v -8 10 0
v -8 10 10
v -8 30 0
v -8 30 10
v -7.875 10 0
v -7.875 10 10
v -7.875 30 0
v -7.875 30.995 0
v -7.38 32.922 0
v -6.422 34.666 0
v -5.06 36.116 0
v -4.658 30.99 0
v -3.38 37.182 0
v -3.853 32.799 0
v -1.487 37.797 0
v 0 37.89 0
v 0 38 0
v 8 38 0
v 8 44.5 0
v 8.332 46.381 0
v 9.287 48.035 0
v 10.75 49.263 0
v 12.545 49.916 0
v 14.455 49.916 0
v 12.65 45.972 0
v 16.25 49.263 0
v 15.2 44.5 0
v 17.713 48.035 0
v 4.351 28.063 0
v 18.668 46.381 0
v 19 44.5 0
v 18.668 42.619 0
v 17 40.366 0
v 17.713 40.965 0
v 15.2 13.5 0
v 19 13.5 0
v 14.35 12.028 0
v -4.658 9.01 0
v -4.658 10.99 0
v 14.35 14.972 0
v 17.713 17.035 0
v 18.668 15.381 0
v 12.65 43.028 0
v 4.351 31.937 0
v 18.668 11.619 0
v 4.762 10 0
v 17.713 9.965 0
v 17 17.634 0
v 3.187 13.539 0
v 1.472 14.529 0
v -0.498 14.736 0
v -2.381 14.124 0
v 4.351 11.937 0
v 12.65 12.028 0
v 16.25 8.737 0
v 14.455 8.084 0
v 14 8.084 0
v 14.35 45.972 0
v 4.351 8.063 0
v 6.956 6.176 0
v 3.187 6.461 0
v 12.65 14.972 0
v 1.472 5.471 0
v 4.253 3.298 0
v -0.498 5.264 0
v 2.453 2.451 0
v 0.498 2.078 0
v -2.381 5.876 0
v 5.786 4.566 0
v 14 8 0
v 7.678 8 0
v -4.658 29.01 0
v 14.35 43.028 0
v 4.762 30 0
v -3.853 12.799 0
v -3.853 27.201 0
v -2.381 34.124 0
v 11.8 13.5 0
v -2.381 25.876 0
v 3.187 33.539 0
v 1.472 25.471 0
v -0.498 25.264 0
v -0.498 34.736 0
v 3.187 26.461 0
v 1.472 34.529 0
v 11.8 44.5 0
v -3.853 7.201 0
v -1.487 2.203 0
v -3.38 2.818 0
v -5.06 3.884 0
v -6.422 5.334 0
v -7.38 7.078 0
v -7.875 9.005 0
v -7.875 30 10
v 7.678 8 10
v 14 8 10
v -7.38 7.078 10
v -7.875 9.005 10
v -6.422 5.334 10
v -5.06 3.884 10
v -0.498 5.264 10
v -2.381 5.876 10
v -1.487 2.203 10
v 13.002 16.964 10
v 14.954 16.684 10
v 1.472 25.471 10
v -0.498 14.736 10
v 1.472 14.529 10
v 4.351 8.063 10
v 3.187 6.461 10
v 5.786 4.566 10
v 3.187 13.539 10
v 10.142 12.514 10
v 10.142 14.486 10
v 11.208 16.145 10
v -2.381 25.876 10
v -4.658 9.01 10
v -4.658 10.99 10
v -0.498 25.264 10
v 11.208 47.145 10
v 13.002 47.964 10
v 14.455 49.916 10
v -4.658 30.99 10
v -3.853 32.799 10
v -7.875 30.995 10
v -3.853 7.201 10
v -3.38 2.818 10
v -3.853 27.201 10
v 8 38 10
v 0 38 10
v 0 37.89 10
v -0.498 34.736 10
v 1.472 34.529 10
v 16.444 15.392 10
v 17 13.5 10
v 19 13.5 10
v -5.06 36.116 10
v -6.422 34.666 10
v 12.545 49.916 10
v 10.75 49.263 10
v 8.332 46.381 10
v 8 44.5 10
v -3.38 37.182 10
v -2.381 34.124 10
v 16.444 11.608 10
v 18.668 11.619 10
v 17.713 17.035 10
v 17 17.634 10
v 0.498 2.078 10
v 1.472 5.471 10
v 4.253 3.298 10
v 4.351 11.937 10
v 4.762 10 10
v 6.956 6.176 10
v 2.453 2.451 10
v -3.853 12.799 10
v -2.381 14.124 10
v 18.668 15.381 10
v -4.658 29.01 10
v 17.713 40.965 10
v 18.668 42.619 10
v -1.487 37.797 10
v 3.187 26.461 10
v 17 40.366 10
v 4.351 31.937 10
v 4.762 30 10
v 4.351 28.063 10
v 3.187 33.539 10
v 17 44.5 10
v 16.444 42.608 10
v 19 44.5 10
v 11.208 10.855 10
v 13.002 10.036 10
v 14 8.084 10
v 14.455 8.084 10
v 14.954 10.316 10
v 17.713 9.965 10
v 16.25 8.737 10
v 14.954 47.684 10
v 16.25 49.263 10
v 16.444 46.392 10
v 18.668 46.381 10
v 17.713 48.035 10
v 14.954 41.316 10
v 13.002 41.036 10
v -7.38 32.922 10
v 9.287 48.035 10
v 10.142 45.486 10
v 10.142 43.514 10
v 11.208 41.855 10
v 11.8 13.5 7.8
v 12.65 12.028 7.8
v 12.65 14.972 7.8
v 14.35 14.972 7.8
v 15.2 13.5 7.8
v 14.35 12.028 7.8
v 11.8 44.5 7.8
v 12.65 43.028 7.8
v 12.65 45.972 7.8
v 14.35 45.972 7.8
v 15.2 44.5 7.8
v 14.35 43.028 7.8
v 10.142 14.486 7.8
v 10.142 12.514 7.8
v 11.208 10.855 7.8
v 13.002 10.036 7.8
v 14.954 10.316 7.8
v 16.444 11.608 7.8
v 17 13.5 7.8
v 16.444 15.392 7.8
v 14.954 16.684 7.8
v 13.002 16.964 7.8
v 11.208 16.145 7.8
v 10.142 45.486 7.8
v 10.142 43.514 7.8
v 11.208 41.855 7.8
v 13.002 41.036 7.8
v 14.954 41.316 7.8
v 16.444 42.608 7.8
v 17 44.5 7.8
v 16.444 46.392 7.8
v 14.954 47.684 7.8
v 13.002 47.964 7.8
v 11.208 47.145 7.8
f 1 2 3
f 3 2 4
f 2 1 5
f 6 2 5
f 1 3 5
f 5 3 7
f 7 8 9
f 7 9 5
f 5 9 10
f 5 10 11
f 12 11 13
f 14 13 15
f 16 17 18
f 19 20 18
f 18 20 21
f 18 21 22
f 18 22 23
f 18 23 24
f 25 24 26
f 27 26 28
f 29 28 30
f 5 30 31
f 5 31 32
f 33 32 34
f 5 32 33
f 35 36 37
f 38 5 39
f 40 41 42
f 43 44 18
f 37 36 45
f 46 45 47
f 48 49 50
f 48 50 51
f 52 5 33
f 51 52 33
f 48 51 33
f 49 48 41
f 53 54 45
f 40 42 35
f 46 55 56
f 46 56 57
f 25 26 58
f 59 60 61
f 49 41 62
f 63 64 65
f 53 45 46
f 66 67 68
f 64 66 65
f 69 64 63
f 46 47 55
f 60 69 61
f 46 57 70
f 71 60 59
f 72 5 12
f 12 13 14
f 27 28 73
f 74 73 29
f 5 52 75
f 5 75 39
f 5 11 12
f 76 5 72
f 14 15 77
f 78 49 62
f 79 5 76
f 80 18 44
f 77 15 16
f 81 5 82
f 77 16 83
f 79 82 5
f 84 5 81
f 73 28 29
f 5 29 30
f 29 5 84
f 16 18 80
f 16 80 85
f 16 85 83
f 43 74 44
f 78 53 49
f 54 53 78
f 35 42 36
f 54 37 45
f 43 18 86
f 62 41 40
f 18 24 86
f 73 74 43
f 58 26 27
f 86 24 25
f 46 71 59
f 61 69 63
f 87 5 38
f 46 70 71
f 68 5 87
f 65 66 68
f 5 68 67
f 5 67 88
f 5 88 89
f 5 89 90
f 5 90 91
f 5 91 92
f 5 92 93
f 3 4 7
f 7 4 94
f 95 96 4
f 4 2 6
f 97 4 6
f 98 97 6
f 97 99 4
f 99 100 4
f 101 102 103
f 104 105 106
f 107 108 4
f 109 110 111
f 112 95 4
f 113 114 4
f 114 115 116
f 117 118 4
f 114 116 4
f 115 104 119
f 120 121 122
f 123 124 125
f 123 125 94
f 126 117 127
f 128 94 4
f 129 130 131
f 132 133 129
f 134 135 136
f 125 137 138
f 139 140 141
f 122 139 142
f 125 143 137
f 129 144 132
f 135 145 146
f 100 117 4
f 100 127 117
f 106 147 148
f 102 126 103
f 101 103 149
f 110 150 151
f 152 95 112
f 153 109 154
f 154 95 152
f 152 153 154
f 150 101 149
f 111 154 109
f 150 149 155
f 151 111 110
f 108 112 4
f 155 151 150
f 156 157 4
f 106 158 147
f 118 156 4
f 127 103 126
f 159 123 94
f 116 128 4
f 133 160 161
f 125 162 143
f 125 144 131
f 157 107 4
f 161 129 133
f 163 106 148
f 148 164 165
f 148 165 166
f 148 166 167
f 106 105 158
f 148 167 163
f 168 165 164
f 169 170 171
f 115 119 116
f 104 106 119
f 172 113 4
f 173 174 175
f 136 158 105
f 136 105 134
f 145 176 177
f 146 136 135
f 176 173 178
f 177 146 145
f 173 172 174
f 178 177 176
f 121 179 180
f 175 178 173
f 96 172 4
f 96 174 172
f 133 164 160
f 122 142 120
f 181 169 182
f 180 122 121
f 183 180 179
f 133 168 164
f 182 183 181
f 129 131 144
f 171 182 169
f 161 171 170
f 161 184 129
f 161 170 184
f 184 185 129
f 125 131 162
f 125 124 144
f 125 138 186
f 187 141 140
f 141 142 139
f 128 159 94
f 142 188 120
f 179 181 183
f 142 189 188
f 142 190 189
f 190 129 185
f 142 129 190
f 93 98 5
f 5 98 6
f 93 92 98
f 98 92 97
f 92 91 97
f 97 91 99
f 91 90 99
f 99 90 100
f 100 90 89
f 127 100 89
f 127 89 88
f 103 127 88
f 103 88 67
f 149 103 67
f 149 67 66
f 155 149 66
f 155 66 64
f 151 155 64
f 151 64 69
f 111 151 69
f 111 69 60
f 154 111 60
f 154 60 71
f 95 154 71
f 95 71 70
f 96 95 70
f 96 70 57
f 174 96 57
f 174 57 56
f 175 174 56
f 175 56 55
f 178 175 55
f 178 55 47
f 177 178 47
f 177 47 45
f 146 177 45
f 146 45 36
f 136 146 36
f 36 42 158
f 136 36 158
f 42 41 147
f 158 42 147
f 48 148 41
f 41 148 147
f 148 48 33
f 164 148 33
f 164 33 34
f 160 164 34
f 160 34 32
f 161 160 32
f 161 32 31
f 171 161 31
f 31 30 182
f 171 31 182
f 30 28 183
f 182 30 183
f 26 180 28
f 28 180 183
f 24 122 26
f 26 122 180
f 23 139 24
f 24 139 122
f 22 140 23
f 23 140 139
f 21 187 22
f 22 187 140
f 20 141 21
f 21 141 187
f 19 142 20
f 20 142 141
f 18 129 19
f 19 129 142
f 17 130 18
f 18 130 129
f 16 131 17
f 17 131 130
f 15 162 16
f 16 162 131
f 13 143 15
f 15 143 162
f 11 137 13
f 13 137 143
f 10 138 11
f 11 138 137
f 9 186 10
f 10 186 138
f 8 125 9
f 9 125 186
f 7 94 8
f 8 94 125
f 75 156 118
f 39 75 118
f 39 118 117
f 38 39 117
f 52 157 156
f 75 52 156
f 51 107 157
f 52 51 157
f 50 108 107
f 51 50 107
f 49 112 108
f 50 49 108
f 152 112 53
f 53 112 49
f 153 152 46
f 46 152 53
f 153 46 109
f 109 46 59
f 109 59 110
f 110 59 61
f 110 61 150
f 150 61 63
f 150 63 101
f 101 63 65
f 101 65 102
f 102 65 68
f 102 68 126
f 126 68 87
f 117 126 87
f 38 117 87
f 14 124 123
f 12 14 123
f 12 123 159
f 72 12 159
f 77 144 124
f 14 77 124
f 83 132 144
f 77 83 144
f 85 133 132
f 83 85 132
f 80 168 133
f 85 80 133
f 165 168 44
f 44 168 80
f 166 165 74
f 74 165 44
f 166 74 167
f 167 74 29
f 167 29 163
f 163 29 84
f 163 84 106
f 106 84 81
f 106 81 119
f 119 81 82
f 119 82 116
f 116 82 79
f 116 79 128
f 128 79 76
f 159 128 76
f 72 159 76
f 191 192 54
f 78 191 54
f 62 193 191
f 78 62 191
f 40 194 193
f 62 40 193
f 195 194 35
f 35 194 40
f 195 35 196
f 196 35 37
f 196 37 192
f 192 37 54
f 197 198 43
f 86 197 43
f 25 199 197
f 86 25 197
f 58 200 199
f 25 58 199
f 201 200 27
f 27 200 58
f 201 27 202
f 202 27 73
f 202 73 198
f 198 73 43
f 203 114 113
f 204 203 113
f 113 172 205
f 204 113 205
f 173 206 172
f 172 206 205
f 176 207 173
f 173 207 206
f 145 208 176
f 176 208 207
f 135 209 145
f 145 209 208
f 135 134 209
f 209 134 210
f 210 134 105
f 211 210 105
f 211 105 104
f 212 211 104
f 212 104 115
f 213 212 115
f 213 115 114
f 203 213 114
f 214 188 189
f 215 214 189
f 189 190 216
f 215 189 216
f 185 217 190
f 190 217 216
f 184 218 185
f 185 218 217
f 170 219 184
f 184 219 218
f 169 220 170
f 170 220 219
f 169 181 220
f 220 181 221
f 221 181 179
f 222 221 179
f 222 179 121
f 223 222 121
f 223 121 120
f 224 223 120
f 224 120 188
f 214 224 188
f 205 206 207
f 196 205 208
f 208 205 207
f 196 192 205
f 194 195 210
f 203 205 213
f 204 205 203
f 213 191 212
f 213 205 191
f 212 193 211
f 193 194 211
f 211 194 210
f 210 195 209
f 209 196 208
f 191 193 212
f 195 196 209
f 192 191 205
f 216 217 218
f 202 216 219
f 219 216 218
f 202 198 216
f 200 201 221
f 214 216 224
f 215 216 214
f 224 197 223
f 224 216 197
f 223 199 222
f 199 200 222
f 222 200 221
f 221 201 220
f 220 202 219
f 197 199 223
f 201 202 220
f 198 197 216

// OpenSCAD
// nelsoncs 2013Jun05 - NCSAppSoft.com
// modified to support:
// 1. U.S. measurements for y-motor for 3/8 in. rod threaded
// 2. motor mount screws are sized for #4-40 but should be suitable for 3mm (untested)
// 
// Original based on:
// PRUSA iteration3
// Y motor mount
// GNU GPL v3
// Josef Průša <iam@josefprusa.cz> and contributors
// http://www.reprap.org/wiki/Prusa_Mendel
// http://prusamendel.org

//include <configuration.scad>

module y_motor_base(){
 // Motor holding part
 translate(v = [29,-21+50,0]){
  translate(v = [-21+4.5,0,5]) cube(size = [9,31,10], center=true);
  translate(v = [-15.5,-15.5,0]) cylinder(h = 10, r=5.5);
  translate(v = [-15.5,+15.5,0]) cylinder(h = 10, r=5.5);
  // Joins motor holder and rod plate
  translate(v = [-29,-21,0]) cube(size = [14,30,10]);
 }
 // Front holding part
 translate(v = [0,10,0]) cylinder(h = 10, r=7.9375);
 translate(v = [0,20,5])cube(size = [16,20,10], center=true);	
 translate(v = [0,30,0])cylinder(h = 10, r=7.9375);
}

module y_motor_holes(){
 translate(v = [29,-21+50,0]){
  // Screw holes
  translate(v = [-15.5,-15.5,-1]) cylinder(h = 10, r=1.7);
  translate(v = [-15.5,+15.5,-1]) cylinder(h = 10, r=1.7);
  // Screw head holes
  translate(v = [-15.5,-15.5,7.8]) cylinder(h = 7, r=3.5);
  translate(v = [-15.5,+15.5,7.8]) cylinder(h = 7, r=3.5);
 }
 translate(v = [0,10,-1]) cylinder(h = 12, r=4.7625);	
 translate(v = [0,30,-1])cylinder(h = 12, r=4.7625);
}

// Final part
module y_motor(){
 difference(){
  y_motor_base();
  y_motor_holes();
 }
}

y_motor();
